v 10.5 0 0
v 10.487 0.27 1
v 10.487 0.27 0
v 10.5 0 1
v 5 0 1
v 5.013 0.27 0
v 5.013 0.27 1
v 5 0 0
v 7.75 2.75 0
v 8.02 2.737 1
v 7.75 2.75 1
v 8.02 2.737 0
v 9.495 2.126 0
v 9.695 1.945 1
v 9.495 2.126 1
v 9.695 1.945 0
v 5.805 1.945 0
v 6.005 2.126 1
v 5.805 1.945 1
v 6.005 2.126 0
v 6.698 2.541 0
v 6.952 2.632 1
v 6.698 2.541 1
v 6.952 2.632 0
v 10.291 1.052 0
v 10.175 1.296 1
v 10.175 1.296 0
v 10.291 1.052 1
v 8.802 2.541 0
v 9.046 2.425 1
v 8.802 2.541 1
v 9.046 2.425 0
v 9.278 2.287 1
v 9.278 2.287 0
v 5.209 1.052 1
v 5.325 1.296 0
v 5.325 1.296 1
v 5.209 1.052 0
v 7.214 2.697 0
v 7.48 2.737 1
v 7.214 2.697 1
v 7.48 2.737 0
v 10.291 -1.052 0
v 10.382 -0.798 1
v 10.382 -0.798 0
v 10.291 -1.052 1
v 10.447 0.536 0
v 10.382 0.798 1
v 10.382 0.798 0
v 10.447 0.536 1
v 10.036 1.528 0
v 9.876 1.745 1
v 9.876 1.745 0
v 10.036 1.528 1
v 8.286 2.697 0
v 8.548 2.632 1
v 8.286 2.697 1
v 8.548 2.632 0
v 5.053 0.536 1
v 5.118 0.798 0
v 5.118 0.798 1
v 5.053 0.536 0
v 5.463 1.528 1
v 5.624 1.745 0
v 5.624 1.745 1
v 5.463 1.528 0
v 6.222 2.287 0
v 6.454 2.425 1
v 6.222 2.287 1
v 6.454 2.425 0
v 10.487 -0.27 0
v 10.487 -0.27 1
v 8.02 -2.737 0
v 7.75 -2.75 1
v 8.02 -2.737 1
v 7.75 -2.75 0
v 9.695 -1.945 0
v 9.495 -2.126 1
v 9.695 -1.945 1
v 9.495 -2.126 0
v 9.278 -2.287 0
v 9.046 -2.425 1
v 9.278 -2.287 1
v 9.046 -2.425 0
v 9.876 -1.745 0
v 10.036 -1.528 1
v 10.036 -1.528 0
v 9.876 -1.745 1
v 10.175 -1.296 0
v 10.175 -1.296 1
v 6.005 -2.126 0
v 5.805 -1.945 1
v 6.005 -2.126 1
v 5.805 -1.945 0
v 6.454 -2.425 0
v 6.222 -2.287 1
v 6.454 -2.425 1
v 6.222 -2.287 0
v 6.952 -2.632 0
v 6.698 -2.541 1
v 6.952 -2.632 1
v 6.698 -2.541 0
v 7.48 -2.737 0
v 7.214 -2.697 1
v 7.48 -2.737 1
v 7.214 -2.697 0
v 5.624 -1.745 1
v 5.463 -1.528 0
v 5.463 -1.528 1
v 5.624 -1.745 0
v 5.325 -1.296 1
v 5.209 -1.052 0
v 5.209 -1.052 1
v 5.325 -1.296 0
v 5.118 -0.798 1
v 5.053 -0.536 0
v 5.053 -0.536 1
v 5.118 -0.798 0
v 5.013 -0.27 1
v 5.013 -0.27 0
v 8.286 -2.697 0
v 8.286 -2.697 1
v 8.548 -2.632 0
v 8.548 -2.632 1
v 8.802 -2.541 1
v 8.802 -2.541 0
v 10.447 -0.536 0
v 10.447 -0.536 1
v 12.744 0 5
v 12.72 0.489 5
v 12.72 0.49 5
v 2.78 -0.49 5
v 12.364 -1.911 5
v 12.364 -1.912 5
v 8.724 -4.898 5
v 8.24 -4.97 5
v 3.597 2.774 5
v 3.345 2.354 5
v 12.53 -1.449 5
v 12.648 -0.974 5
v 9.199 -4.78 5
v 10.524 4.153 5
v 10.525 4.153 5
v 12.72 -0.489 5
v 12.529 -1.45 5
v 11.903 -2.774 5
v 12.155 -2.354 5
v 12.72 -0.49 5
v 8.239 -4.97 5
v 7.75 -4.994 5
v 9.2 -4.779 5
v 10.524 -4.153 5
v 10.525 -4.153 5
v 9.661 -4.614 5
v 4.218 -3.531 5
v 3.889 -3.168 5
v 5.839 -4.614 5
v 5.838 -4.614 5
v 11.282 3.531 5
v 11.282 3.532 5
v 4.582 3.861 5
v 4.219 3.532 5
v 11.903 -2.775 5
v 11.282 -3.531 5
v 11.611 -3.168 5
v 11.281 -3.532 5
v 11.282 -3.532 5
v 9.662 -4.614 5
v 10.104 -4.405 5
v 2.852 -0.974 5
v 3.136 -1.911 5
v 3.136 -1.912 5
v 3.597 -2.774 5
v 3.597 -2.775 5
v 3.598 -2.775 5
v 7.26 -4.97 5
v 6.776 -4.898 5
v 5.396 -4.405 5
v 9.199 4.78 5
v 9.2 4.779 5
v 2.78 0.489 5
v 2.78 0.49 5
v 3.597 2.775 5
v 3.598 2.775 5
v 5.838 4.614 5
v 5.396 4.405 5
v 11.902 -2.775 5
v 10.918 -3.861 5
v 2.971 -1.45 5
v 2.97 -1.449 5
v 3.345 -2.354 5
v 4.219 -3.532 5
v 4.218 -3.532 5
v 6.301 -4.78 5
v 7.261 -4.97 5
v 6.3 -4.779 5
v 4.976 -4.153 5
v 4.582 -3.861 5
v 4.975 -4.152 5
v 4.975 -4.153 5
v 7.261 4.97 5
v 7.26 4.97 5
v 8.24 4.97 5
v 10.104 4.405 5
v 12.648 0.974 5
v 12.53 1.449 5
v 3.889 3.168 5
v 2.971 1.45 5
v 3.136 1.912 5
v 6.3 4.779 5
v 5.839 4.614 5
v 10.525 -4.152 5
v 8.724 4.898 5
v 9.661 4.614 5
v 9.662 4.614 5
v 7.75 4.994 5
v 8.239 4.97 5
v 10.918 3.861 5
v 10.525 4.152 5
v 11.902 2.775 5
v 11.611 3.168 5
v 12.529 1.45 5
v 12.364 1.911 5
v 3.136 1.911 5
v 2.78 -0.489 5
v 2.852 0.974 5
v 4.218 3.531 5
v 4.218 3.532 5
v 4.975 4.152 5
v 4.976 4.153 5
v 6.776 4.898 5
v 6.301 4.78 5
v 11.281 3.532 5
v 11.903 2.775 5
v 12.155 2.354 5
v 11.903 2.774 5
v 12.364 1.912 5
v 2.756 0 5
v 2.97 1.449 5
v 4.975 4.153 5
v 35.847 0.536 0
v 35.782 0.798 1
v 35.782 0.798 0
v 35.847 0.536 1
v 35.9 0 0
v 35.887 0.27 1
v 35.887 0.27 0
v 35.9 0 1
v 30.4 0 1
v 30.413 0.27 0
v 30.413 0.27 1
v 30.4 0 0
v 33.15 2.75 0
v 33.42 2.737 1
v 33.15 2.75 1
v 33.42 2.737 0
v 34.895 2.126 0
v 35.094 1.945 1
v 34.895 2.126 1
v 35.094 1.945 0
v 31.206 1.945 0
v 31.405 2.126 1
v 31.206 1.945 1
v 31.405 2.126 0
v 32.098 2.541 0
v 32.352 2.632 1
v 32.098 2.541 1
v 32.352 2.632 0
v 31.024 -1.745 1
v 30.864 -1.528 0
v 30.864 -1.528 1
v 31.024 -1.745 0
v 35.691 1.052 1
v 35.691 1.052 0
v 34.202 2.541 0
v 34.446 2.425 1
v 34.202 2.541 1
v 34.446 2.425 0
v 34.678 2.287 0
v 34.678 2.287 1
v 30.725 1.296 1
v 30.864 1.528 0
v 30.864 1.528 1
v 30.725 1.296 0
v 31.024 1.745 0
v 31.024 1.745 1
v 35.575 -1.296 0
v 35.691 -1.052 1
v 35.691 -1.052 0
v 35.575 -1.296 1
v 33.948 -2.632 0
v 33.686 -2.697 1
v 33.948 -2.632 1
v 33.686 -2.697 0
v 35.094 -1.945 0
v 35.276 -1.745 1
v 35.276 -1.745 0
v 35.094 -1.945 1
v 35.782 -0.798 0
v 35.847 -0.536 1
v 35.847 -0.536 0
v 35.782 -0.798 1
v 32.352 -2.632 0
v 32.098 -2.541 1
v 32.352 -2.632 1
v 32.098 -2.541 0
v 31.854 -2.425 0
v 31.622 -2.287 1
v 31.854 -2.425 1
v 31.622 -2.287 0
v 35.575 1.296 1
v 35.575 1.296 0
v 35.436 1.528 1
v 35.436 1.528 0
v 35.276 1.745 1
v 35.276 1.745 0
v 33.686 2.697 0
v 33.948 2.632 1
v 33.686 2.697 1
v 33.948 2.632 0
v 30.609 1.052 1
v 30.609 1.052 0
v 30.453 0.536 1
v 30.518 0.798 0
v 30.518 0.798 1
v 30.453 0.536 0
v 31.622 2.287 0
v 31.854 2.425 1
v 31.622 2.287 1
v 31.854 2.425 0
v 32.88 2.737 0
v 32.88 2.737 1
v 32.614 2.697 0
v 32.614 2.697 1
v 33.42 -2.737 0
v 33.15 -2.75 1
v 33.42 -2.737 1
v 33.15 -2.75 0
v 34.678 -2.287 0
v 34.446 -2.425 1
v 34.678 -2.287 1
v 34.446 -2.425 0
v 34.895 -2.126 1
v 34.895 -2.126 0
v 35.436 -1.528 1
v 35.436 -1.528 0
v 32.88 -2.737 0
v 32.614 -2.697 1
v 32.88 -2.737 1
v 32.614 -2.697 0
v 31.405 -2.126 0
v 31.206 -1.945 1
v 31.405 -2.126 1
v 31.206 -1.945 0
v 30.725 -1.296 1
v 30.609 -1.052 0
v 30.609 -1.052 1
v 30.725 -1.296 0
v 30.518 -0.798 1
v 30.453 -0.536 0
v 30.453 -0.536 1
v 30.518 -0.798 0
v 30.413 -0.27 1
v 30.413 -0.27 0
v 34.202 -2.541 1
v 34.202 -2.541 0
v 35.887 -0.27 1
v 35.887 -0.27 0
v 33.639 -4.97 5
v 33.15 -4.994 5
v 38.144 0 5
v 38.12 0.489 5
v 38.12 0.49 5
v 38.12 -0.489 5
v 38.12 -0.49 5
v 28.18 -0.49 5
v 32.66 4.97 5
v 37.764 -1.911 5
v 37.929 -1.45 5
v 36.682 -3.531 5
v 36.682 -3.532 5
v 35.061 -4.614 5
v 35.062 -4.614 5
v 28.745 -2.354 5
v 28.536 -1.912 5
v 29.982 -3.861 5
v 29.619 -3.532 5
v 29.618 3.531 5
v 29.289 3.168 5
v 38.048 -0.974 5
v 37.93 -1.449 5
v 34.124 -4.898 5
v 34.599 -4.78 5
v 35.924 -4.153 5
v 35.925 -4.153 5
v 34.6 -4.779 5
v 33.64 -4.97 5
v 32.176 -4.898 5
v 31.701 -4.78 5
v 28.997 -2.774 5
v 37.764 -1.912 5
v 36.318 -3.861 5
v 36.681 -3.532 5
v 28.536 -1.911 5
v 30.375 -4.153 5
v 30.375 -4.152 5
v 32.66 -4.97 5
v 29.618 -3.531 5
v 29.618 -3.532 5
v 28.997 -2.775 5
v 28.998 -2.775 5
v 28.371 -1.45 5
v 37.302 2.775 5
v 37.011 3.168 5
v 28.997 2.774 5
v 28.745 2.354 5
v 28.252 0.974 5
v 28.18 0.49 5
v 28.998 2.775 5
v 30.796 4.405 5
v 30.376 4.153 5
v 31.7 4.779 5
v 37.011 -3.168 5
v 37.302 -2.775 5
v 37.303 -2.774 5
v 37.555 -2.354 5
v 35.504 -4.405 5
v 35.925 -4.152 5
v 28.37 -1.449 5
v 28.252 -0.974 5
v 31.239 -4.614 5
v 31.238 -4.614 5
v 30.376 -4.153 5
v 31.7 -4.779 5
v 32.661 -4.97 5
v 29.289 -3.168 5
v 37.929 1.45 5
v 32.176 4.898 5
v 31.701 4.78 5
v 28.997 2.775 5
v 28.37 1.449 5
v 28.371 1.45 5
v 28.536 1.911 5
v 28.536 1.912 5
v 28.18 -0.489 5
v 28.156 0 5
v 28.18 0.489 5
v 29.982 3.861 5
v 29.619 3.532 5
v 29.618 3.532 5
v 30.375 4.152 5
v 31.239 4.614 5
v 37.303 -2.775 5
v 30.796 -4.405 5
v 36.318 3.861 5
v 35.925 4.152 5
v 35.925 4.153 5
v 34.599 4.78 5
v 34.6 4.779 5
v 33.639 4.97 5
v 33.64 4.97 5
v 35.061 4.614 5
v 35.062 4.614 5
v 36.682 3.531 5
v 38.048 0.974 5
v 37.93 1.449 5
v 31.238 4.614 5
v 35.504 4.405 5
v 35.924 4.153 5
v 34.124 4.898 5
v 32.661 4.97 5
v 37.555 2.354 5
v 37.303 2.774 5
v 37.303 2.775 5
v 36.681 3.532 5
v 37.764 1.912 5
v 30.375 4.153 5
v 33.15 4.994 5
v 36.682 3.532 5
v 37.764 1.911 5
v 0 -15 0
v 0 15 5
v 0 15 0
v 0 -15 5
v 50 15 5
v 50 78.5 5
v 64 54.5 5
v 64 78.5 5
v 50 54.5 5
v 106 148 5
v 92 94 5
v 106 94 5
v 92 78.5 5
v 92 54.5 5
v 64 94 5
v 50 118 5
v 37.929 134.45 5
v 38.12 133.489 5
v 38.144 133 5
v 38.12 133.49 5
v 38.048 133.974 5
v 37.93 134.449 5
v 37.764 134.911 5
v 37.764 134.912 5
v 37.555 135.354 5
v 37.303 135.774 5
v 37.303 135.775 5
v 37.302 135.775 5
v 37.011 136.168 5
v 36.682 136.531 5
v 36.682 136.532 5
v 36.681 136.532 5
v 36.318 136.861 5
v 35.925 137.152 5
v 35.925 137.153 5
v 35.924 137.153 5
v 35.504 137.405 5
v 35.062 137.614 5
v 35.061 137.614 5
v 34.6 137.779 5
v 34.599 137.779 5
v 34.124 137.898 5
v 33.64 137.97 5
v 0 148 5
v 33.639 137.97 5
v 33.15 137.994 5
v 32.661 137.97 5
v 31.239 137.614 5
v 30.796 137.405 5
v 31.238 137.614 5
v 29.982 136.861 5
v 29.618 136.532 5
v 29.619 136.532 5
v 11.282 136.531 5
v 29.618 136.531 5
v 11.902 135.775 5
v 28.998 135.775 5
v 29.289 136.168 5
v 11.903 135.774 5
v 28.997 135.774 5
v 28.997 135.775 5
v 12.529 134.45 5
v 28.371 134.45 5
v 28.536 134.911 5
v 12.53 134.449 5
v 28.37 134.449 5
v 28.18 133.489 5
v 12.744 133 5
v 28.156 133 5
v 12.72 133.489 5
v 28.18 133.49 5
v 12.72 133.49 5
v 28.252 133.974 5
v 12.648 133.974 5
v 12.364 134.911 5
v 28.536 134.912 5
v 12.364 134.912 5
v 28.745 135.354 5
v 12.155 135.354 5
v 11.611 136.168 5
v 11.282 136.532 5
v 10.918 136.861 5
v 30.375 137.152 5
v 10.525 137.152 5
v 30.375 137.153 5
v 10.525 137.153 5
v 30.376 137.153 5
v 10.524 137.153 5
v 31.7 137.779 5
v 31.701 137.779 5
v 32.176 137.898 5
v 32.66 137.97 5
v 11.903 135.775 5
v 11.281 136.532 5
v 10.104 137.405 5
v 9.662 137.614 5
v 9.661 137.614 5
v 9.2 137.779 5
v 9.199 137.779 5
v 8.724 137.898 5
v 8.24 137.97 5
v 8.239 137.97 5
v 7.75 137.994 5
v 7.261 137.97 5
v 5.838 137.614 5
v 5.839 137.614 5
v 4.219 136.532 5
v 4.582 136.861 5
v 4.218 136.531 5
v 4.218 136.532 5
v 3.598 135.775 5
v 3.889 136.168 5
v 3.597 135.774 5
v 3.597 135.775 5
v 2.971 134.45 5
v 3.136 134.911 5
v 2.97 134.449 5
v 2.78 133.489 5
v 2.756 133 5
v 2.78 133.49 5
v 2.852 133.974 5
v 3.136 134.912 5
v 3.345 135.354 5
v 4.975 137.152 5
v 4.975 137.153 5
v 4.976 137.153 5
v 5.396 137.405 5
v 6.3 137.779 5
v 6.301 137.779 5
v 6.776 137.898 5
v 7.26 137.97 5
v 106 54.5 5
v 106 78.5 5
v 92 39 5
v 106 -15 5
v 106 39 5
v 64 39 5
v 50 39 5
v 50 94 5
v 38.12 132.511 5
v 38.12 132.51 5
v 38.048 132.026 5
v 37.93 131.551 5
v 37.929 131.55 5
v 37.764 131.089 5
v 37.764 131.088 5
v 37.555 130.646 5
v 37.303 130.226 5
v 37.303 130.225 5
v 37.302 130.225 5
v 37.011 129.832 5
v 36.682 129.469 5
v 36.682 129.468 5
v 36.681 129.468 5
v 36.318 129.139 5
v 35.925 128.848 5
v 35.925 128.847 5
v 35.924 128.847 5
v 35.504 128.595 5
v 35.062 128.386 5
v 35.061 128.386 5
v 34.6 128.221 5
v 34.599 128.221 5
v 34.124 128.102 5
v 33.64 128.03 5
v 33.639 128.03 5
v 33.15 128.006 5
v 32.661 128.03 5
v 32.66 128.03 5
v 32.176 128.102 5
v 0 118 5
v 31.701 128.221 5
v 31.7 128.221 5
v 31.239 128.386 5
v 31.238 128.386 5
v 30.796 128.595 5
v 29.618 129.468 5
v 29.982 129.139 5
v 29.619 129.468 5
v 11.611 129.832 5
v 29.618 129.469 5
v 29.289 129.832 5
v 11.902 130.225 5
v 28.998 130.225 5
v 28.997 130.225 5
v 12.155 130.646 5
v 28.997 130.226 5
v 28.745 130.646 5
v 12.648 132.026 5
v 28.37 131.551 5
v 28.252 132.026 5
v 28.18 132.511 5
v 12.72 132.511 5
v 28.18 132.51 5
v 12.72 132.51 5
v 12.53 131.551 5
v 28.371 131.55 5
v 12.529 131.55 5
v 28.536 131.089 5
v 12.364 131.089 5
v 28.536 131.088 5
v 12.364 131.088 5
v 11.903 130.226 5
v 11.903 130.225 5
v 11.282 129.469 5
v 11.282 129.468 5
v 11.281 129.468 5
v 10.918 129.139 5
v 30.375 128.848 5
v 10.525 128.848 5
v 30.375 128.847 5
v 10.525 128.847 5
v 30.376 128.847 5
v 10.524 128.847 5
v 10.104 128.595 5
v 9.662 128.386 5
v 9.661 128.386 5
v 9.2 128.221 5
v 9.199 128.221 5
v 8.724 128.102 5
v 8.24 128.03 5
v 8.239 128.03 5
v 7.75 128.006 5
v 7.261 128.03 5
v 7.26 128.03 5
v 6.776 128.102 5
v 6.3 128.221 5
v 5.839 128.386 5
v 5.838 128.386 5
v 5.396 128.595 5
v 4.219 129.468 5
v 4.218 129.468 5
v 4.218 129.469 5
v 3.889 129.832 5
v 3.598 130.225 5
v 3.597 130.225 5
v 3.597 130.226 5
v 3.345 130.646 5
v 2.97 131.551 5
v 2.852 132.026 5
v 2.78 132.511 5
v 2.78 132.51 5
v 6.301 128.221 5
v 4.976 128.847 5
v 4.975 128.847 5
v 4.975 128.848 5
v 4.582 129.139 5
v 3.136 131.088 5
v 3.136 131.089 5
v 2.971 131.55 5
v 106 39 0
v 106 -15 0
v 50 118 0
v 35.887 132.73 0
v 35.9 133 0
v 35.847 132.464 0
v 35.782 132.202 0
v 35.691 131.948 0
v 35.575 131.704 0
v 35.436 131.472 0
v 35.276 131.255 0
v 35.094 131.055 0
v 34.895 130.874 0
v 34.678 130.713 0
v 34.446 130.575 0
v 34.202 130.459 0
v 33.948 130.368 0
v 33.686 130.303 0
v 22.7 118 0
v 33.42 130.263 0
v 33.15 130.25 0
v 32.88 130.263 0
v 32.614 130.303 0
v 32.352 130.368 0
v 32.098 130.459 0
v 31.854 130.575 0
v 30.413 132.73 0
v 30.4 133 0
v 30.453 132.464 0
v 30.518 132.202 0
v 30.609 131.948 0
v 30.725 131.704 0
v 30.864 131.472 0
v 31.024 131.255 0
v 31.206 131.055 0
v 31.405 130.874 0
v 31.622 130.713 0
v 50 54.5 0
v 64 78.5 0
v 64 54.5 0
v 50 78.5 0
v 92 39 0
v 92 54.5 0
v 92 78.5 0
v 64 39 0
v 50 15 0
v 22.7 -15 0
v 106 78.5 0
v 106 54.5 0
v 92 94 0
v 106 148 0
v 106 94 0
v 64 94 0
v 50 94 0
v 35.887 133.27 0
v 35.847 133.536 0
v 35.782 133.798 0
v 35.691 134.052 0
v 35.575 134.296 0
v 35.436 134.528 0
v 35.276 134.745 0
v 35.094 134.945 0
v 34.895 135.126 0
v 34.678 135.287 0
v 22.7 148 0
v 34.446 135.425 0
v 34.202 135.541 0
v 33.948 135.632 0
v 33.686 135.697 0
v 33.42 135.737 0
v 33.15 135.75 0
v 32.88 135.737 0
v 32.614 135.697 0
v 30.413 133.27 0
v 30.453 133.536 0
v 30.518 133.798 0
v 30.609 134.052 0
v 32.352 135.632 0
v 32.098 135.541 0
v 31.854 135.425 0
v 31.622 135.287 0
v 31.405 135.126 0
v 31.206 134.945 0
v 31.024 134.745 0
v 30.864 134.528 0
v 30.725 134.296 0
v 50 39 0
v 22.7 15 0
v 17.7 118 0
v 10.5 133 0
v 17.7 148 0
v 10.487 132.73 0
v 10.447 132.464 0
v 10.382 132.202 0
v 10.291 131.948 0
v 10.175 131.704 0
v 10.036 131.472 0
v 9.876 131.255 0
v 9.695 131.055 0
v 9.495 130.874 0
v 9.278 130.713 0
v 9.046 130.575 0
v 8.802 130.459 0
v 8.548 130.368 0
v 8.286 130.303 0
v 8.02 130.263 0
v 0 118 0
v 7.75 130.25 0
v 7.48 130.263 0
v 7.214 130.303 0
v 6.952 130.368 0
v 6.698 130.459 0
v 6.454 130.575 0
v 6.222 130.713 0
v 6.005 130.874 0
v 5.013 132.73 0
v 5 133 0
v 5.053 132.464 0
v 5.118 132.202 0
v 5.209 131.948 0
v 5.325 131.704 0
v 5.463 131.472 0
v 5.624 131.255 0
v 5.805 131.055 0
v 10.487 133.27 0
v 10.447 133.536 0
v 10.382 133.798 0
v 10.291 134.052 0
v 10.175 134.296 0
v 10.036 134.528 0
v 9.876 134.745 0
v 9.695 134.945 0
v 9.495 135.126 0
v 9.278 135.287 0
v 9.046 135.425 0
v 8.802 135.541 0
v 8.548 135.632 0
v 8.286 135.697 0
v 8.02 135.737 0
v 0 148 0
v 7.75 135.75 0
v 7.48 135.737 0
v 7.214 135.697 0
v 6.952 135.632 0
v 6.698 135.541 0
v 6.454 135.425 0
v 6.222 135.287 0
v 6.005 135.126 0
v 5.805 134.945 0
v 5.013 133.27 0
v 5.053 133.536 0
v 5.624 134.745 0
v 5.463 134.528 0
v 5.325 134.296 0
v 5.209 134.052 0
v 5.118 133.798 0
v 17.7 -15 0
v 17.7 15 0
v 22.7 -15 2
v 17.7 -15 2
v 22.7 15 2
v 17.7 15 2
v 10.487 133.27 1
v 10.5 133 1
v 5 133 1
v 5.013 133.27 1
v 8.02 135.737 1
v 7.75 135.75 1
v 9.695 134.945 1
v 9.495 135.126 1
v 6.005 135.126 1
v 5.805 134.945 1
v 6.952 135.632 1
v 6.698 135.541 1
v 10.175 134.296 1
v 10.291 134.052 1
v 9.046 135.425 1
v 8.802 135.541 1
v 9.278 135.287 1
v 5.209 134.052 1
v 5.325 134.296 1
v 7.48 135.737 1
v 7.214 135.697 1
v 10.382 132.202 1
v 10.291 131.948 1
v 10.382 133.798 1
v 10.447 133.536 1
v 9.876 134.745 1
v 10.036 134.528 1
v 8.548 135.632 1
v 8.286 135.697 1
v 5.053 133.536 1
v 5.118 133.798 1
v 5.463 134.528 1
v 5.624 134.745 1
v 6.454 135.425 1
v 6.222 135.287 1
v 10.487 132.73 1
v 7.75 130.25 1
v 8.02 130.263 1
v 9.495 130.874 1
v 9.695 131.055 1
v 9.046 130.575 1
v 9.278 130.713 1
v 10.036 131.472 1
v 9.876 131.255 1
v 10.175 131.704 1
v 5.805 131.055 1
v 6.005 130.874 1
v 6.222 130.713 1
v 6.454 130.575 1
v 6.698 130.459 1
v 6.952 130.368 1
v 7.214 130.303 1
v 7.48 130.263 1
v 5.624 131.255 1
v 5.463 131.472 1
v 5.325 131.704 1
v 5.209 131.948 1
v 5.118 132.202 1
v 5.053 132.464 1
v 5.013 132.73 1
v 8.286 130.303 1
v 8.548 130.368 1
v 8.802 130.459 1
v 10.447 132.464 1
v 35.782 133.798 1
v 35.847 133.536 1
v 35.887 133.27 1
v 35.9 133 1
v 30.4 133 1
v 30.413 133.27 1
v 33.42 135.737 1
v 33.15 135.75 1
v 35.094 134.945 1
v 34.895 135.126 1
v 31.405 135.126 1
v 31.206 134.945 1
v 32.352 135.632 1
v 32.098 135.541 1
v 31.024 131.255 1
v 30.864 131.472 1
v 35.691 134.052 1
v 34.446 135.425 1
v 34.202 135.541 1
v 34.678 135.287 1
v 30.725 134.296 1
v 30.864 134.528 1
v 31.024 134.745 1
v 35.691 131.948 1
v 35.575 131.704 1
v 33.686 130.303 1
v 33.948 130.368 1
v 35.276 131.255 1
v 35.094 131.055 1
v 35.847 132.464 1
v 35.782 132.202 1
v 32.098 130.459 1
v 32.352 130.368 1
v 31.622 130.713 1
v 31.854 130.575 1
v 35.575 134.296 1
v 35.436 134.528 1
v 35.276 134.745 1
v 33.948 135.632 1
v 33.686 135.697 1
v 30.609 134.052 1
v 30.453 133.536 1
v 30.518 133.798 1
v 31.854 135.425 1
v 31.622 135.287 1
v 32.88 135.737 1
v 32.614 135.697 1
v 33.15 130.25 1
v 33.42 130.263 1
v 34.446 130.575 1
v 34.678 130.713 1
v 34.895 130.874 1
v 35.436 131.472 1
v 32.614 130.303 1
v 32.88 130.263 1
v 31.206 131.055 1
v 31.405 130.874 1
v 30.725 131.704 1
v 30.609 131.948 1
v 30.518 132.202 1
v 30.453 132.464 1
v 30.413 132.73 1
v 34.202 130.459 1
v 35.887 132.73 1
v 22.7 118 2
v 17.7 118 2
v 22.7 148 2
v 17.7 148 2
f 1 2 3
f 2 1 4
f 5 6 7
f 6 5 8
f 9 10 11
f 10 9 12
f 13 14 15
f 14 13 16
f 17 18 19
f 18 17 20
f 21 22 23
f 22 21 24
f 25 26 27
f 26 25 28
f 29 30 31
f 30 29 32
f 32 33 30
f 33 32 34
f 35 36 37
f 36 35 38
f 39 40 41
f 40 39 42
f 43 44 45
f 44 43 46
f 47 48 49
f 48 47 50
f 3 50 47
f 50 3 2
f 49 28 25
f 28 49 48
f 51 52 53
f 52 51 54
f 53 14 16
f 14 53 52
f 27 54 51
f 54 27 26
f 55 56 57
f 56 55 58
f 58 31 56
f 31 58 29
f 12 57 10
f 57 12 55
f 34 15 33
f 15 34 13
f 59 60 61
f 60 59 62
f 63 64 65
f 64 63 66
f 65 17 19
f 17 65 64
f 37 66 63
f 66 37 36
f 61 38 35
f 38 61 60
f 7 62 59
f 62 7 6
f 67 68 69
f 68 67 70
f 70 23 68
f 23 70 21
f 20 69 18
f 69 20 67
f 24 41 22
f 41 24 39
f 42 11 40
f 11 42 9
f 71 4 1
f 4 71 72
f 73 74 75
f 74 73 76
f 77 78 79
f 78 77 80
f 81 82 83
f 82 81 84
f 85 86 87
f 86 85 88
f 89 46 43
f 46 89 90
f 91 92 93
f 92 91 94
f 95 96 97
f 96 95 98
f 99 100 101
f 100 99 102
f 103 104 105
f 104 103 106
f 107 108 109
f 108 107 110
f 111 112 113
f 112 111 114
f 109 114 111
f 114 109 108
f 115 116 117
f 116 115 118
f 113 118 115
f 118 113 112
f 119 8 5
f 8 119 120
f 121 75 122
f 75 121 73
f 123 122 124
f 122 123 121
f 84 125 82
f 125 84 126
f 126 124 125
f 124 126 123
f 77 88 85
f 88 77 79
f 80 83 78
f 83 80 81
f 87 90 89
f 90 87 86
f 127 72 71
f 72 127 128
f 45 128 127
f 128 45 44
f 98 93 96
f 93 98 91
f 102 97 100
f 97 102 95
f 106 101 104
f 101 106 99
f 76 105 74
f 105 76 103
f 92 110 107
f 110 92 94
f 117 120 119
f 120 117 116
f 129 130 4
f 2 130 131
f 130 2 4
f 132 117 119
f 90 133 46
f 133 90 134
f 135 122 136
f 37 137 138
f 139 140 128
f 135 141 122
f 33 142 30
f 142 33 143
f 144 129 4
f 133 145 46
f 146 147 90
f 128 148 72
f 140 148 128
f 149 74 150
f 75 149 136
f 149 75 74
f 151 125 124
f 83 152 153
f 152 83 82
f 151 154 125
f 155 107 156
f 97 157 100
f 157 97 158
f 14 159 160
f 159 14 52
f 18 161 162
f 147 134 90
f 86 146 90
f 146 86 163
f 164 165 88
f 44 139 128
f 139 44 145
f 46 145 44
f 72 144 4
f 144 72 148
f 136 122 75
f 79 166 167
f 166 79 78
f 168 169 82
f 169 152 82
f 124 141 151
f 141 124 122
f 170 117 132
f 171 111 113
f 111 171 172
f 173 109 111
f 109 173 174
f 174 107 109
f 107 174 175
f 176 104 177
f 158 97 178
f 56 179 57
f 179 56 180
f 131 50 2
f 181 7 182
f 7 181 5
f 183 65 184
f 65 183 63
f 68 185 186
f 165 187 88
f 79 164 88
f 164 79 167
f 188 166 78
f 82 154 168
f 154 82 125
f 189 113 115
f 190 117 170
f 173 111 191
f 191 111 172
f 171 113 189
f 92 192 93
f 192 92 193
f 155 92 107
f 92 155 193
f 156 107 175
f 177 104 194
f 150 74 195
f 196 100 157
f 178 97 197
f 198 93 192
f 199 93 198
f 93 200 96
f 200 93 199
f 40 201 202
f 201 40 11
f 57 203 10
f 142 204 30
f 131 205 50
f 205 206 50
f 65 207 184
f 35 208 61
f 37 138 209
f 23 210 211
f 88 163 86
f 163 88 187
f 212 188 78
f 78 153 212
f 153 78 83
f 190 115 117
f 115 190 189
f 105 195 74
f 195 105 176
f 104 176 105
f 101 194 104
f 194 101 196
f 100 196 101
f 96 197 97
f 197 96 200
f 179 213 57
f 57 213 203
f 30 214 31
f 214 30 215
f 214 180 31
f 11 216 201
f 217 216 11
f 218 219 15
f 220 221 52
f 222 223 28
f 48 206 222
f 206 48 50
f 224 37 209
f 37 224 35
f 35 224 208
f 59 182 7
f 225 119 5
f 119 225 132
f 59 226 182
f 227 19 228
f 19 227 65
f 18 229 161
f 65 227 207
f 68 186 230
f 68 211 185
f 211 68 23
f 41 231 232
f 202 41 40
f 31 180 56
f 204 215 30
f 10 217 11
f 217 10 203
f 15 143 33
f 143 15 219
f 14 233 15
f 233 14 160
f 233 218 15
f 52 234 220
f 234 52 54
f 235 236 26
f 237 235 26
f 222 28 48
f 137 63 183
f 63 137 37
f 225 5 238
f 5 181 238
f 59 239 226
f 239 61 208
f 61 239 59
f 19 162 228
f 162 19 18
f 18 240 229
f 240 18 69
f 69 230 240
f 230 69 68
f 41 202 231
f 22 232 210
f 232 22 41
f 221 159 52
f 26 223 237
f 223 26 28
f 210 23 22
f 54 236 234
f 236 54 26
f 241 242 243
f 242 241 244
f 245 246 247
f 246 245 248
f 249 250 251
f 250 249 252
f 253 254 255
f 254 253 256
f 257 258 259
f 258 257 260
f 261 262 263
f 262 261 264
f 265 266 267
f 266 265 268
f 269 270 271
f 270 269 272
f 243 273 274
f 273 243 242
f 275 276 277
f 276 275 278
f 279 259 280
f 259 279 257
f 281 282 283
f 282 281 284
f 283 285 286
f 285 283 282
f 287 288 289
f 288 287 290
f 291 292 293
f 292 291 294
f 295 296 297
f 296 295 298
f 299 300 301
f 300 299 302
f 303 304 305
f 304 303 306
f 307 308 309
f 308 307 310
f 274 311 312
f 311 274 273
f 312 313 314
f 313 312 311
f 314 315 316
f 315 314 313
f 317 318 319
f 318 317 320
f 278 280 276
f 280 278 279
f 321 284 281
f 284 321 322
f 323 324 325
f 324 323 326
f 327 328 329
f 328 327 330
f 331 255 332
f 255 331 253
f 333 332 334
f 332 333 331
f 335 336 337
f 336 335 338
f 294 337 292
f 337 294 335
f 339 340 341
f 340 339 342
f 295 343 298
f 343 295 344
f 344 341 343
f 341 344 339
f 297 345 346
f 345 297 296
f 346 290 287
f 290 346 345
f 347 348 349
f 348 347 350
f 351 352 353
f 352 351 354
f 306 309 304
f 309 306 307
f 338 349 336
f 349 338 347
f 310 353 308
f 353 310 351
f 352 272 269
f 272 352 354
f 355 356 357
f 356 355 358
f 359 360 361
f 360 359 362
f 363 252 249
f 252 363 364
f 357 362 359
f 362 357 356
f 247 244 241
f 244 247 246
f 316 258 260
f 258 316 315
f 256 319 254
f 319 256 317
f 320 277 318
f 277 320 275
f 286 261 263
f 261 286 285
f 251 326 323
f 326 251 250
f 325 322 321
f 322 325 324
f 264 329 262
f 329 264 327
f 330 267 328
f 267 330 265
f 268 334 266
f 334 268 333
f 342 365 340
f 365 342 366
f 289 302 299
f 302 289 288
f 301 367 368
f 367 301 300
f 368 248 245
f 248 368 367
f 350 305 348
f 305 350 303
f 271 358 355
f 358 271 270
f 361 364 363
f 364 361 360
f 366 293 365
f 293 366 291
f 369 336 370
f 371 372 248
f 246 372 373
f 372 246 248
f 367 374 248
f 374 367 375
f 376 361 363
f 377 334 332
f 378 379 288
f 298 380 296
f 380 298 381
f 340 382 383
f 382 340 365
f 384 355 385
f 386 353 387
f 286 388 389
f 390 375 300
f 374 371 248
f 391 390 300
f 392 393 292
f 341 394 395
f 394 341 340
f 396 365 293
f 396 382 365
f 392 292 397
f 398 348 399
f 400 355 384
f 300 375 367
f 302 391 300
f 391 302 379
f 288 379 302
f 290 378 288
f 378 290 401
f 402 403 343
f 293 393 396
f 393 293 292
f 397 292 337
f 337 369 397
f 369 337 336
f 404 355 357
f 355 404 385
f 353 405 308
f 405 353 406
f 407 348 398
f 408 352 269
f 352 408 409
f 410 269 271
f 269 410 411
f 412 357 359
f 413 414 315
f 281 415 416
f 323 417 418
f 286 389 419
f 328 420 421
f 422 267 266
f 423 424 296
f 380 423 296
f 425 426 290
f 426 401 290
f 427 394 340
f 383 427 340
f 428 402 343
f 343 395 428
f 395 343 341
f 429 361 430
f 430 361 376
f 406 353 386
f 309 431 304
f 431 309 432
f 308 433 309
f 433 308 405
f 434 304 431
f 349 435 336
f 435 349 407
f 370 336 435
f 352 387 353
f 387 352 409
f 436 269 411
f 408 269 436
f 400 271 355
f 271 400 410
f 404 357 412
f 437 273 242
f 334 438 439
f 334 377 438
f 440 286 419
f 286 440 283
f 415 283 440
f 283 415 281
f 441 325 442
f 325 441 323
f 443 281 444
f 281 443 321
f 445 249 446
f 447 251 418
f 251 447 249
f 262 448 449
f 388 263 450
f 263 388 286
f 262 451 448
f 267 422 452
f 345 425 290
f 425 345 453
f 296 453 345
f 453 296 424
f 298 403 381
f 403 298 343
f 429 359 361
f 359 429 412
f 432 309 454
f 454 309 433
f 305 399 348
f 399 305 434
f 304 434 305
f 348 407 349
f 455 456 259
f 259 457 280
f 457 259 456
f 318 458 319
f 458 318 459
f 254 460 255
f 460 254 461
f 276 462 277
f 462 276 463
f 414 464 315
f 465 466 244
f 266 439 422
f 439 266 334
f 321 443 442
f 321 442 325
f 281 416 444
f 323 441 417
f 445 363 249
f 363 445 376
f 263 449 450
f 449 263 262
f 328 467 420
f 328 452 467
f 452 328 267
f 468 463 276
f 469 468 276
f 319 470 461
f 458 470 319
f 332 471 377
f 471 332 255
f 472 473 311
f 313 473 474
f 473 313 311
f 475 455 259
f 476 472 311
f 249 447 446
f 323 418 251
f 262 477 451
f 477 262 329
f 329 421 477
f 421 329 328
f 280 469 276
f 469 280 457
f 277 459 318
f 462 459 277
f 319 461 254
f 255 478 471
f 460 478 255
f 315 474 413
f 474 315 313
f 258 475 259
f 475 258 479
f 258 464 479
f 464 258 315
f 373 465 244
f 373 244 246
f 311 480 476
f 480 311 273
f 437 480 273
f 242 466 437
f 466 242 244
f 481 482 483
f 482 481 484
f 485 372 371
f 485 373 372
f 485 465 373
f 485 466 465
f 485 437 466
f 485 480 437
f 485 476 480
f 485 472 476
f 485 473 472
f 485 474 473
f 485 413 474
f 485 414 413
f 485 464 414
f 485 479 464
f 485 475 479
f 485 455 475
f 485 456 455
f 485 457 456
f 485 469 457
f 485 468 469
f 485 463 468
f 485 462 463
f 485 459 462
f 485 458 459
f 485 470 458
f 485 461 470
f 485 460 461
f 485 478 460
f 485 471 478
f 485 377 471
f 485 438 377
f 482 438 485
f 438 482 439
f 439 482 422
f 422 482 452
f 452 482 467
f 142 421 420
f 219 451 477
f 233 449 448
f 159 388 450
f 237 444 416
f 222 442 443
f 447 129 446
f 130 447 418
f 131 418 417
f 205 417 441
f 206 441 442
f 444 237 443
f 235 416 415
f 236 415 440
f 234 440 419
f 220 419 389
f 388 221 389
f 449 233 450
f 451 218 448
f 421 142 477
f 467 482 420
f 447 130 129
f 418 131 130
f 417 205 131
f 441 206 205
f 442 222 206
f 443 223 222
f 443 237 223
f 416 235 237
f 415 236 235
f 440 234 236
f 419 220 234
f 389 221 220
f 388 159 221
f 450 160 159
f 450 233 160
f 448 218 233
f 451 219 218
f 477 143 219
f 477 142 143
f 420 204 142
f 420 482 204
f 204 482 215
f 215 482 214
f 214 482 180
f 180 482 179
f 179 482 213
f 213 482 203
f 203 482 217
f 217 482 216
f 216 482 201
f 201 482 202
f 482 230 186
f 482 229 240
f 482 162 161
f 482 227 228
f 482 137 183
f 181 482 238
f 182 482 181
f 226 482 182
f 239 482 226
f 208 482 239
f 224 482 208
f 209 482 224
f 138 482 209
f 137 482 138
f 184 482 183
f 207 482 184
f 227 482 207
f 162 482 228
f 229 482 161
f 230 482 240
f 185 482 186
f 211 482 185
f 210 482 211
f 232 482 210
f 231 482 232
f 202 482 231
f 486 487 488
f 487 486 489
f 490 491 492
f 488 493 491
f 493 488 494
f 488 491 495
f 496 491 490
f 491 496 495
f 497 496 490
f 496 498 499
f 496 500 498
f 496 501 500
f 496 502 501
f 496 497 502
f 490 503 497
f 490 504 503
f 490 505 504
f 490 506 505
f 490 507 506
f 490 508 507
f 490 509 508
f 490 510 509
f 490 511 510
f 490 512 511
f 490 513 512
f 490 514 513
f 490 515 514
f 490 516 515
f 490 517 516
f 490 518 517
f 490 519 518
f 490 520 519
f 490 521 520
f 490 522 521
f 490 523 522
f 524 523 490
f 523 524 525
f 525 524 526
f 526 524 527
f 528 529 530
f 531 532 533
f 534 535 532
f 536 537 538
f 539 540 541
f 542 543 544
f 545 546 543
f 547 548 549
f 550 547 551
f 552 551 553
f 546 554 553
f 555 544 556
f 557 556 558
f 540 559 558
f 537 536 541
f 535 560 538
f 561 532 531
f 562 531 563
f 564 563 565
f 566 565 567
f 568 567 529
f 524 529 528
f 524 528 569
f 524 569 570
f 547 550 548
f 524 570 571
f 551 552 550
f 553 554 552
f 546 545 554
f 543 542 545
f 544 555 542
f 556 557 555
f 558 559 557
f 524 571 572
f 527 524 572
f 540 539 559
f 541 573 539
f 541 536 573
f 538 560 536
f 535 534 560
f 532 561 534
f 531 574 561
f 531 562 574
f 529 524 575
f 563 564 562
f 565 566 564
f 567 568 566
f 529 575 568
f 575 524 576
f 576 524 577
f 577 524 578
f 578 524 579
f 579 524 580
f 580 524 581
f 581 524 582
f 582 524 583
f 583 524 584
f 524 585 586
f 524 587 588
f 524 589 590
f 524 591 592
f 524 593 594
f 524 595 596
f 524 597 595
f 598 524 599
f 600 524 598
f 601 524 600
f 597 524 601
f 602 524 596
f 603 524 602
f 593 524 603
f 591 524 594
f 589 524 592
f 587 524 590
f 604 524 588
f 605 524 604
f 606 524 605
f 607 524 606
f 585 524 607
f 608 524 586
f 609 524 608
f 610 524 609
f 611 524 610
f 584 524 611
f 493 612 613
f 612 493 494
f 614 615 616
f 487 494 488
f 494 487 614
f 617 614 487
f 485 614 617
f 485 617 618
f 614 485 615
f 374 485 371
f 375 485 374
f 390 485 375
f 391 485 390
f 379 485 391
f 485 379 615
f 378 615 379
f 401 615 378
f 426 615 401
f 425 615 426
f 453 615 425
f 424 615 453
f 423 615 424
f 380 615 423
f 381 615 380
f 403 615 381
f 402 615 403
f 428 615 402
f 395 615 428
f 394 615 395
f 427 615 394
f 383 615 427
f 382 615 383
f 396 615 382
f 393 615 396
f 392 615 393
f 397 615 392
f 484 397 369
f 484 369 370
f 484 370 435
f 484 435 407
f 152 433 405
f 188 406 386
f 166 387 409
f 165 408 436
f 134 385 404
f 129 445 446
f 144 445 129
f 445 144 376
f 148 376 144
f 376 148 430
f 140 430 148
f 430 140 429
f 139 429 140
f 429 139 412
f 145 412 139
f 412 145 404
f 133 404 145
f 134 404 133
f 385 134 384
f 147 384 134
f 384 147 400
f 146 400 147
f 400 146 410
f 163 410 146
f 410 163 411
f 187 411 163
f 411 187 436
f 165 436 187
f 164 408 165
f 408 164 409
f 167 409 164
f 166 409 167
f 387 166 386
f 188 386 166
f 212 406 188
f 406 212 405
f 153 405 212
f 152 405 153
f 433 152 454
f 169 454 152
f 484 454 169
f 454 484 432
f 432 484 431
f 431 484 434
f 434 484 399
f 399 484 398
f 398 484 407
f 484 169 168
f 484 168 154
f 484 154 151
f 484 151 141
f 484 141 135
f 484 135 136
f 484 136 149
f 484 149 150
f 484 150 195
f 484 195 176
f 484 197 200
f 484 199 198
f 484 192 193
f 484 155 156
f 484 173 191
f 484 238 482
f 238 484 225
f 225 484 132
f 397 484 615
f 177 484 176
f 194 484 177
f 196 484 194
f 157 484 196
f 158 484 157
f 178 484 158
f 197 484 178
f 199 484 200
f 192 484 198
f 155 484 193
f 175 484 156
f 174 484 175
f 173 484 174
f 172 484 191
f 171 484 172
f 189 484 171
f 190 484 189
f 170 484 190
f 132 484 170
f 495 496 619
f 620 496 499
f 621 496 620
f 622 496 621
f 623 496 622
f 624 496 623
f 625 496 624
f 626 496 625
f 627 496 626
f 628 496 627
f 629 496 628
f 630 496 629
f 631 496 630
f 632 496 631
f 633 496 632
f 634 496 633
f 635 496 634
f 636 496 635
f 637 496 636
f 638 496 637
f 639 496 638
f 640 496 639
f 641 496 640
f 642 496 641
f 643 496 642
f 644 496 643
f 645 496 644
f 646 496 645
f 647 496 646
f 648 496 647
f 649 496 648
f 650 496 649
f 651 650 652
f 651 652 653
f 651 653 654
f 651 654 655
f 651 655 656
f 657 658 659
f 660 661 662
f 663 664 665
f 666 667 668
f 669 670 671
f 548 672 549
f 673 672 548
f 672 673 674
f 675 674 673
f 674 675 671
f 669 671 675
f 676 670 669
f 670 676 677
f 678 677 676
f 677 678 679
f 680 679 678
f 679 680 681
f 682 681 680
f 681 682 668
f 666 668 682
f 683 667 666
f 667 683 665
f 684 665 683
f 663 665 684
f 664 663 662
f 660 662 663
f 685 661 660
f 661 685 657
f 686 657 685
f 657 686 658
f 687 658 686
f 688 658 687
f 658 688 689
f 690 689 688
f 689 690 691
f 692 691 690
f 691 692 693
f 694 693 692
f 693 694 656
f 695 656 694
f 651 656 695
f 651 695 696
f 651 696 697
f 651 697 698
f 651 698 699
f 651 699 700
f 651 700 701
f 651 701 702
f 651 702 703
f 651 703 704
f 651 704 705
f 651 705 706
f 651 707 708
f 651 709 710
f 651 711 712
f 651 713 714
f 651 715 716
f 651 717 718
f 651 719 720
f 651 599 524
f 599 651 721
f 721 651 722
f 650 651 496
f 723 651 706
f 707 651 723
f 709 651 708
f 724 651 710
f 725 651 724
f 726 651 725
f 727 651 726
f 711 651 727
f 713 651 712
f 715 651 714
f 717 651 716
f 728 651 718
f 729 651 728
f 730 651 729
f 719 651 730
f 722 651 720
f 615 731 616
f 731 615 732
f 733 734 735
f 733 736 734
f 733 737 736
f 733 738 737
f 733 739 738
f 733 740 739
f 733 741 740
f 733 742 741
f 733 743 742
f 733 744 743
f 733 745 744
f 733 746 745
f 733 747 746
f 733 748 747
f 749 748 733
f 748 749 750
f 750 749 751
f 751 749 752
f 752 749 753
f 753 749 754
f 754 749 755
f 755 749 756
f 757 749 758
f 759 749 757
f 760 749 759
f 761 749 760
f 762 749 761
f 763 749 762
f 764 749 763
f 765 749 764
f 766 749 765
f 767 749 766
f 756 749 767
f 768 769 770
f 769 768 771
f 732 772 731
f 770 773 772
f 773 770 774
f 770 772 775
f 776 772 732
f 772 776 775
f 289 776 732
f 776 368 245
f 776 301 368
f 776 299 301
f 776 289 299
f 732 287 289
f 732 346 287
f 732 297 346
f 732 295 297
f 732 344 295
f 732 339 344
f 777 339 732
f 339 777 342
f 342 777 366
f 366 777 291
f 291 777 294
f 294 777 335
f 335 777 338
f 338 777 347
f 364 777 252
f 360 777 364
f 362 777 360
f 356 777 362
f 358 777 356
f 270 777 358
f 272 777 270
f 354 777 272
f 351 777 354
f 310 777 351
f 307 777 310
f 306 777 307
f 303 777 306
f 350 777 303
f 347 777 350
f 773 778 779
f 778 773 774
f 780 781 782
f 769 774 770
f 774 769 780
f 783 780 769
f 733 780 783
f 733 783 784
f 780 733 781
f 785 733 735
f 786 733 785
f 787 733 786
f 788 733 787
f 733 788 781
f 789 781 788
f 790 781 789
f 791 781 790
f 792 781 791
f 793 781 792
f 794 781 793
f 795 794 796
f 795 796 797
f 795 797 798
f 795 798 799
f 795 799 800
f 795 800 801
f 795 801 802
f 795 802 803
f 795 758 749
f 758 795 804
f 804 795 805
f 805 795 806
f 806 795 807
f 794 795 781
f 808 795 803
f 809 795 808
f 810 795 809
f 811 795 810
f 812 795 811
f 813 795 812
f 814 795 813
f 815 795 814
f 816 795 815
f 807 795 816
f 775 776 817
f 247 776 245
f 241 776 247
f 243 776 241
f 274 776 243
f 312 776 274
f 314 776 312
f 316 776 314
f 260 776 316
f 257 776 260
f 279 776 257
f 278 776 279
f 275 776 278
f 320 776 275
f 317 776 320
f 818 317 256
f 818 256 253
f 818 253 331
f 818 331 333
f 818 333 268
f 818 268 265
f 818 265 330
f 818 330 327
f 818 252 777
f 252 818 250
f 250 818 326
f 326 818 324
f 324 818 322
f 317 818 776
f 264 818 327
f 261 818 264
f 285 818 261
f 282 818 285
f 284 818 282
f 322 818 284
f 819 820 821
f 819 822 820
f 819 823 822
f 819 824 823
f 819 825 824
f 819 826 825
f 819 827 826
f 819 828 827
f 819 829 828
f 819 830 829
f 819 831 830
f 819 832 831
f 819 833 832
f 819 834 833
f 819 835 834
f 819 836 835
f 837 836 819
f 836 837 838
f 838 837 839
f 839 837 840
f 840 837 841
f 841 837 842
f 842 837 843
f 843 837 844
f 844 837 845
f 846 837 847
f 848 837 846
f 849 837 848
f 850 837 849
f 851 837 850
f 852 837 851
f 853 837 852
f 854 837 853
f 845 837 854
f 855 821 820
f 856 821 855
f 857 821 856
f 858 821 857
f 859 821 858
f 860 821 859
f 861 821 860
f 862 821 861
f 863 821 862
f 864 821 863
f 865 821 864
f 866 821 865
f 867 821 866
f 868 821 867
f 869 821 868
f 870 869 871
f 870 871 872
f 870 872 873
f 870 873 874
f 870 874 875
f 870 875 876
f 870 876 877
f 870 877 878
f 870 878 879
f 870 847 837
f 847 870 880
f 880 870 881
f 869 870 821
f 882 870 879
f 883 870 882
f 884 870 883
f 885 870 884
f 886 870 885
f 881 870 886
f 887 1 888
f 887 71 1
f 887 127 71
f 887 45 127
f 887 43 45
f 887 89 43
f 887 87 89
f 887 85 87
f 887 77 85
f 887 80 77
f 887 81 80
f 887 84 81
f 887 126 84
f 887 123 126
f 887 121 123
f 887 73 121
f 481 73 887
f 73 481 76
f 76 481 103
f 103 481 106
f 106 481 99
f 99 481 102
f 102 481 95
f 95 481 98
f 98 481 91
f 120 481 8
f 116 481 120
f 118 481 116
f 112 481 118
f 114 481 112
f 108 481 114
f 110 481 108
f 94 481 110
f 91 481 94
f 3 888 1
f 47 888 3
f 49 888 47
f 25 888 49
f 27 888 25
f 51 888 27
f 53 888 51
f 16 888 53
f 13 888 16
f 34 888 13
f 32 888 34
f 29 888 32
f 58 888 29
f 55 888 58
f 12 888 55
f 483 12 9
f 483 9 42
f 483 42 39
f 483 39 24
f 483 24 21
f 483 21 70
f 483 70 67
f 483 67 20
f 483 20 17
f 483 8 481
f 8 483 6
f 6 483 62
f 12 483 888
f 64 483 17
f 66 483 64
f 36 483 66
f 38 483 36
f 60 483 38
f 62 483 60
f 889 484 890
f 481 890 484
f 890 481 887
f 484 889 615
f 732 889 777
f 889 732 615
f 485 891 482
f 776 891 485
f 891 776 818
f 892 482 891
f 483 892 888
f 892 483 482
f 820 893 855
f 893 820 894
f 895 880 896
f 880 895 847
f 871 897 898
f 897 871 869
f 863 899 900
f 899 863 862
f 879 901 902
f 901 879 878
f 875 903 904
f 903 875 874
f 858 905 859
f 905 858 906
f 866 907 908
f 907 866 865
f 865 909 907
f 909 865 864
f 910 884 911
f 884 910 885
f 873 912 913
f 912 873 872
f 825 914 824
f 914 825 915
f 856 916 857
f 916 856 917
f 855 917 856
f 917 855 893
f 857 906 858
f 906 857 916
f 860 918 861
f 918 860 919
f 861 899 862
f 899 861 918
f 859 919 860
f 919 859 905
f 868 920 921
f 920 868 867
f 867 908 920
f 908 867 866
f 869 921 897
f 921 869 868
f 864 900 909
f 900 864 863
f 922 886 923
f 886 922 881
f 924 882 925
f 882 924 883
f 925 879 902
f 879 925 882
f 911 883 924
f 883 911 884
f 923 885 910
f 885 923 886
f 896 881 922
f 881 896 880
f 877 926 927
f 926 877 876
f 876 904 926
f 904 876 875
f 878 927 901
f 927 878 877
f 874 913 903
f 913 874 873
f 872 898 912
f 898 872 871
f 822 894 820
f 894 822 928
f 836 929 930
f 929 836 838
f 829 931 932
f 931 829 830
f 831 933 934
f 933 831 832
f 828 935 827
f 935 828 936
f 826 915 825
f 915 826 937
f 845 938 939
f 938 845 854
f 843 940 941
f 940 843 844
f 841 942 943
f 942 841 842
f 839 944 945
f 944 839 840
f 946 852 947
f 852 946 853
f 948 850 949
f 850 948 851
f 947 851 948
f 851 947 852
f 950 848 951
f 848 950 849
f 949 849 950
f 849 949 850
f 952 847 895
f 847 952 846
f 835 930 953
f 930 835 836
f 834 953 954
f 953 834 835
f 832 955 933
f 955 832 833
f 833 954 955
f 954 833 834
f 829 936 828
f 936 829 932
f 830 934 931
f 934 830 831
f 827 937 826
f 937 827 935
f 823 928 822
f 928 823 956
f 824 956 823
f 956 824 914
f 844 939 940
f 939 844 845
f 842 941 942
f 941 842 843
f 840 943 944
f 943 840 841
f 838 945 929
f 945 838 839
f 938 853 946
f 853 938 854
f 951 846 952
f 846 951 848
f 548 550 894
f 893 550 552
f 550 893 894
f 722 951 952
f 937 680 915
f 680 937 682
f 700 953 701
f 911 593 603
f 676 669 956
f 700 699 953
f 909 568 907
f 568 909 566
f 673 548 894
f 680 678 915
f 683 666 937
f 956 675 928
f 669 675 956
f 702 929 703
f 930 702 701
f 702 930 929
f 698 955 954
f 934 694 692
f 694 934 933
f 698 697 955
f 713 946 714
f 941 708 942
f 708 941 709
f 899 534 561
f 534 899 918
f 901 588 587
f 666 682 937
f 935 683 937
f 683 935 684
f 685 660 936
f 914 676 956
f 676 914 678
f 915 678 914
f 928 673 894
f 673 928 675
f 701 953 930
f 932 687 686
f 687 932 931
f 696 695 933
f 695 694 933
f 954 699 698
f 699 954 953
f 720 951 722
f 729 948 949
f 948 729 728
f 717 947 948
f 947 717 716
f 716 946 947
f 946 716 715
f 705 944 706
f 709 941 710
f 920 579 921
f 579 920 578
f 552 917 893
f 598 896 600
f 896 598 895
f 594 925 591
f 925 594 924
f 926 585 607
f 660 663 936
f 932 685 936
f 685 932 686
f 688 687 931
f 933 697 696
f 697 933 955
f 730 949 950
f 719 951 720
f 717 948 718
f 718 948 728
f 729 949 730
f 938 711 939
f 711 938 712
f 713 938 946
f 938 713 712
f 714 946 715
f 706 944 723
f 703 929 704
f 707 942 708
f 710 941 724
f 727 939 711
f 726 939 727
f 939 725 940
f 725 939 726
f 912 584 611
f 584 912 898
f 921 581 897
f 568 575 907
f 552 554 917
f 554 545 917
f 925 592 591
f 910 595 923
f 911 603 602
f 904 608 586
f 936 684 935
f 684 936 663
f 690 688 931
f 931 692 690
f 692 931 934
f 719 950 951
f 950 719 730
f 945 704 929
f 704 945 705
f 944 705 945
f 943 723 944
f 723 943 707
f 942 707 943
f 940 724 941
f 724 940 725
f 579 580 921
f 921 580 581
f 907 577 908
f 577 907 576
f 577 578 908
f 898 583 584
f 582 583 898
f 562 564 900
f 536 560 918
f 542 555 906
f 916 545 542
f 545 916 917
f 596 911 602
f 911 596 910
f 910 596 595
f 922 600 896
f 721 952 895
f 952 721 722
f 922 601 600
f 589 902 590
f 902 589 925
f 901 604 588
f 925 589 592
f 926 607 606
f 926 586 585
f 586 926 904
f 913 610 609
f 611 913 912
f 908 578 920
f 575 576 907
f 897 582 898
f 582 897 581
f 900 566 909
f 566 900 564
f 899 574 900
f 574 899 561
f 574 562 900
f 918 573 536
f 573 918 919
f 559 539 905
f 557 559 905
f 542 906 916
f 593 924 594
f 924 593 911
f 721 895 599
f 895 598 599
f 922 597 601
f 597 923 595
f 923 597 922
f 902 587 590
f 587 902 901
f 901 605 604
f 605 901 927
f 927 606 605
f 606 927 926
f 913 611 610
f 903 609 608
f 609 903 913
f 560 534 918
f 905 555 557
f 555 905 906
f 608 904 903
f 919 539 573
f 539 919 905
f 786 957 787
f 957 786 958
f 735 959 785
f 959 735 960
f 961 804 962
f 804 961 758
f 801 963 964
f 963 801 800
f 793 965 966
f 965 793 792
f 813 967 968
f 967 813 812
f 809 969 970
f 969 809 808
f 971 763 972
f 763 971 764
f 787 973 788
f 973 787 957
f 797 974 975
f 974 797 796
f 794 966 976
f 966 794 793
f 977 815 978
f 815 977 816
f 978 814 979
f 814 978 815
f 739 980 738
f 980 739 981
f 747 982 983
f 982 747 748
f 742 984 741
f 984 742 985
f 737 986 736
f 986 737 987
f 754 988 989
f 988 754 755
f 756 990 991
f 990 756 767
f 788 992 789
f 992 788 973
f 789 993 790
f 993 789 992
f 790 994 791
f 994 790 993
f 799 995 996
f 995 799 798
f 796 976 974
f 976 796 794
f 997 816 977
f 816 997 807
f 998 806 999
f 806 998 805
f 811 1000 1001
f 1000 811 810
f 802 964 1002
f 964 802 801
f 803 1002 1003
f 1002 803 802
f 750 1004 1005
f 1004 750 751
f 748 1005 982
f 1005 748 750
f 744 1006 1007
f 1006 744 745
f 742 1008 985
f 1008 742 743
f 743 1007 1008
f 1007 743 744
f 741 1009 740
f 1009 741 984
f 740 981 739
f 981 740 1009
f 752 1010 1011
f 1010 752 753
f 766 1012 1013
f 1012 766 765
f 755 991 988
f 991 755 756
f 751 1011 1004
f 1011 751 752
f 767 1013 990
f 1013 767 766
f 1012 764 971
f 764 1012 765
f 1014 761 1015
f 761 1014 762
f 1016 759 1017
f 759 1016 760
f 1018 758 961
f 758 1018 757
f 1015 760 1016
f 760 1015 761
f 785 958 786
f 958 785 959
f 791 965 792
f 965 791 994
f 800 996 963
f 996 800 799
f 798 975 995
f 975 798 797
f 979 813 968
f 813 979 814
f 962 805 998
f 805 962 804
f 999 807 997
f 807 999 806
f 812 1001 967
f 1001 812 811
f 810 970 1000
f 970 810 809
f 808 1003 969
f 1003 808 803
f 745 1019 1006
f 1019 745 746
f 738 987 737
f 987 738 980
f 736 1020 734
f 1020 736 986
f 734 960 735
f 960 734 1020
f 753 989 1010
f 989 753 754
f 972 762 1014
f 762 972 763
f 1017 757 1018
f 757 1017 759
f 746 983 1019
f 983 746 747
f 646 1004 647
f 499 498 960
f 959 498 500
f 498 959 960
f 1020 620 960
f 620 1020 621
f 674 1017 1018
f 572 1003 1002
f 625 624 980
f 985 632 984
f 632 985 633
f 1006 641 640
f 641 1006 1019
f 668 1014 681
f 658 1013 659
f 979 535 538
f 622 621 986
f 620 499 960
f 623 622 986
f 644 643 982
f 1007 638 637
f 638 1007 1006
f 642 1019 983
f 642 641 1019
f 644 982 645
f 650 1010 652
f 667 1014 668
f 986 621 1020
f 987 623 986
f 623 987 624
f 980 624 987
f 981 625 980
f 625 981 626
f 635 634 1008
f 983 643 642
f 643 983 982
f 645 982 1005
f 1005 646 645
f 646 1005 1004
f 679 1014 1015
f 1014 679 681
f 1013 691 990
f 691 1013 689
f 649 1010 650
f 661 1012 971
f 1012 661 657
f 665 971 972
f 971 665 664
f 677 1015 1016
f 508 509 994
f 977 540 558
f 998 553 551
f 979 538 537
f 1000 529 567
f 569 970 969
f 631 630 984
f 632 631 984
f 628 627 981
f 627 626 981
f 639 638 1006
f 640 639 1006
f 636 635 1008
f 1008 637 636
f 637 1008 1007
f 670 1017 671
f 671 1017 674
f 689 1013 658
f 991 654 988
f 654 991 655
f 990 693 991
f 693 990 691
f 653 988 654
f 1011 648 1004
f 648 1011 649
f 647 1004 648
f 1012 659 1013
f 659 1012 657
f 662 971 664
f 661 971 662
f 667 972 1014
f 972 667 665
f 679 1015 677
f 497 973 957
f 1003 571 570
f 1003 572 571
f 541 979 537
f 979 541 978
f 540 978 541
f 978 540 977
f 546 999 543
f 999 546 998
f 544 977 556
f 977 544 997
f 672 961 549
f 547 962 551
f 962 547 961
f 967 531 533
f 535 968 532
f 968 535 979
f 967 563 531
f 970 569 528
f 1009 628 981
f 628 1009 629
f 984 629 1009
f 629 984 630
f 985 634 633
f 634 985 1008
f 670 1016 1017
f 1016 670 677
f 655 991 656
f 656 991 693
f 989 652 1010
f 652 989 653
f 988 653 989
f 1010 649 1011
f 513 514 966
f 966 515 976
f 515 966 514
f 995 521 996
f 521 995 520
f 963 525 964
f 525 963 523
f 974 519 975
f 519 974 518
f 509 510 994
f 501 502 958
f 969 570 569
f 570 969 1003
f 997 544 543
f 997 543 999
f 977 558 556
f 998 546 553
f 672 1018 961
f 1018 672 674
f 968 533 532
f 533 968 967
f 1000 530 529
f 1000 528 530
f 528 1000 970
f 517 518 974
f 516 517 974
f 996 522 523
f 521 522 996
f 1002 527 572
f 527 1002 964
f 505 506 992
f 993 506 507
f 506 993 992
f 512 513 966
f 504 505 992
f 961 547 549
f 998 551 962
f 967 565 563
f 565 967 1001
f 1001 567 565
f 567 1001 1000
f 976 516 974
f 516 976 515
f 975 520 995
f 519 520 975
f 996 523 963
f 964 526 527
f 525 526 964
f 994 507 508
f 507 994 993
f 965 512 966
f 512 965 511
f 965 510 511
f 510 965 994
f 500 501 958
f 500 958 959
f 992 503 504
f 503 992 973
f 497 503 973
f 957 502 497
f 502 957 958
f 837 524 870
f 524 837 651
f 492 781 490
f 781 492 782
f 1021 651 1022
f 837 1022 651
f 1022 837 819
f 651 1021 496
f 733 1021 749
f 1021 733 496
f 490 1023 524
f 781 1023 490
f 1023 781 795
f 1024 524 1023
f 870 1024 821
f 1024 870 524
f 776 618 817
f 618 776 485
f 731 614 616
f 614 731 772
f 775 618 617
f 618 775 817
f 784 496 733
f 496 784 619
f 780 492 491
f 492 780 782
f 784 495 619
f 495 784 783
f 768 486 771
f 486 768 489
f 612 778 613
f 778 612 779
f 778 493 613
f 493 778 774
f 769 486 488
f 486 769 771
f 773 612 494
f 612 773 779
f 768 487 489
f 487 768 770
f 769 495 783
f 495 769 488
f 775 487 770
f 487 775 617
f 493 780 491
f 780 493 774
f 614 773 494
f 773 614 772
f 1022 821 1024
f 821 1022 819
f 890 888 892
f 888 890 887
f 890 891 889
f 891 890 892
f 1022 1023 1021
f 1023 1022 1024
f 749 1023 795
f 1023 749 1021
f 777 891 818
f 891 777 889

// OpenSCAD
$fn = 64;

in = 25.4;
bracket_thickness = 5;
screw_hole_diameter = 5.5;
screw_head_diameter = 10;
screw_head_height = 4;
screw_hole_spacing = 133;
first_hole_offset = 5;

supply_width = 56;
supply_length = 112;
velcro_width = 15.5;

mounting_plate_width = 30;
mounting_plate_length = 50;

cable_slot_width = 5;
cable_slot_height = 2;

fudge = 0.01;

// Derived values, do not edit
pf = fudge;
nf = -fudge;
dpf = 2 * pf;
base_offset = first_hole_offset + screw_hole_diameter/2;

module mounting_post() {
    difference() {
        cube([mounting_plate_length + supply_width, mounting_plate_width, bracket_thickness]);
        translate([0, mounting_plate_width/2, nf]) {           
            translate([base_offset, 0, 0]) {
                cylinder(d = screw_hole_diameter, h = bracket_thickness + dpf);
                translate([0, 0, bracket_thickness - screw_head_height + pf])
                    cylinder(d1 = screw_hole_diameter, d2 = screw_head_diameter, h = screw_head_height + pf);
            }
            translate([base_offset + in, 0, 0]) {
                cylinder(d = screw_hole_diameter, h = bracket_thickness + dpf);
                translate([0, 0, bracket_thickness - screw_head_height + pf])
                    cylinder(d1 = screw_hole_diameter, d2 = screw_head_diameter, h = screw_head_height + pf);
            }
        }
    }
}

module final_part() {
    difference() {
        union() {
            // mounting posts
            mounting_post();
            translate([0, screw_hole_spacing, 0])
                mounting_post();
            
            // wide support plates w/ spacing for velcro
            plate_width = (screw_hole_spacing - mounting_plate_width - 2 * velcro_width) / 3;
            translate([mounting_plate_length, mounting_plate_width, 0]) 
                color("red") 
                    cube([supply_width, plate_width, bracket_thickness]);
            translate([mounting_plate_length, screw_hole_spacing - plate_width, 0]) 
                color("red") 
                    cube([supply_width, plate_width, bracket_thickness]);
            translate([mounting_plate_length, mounting_plate_width + plate_width + velcro_width, 0]) 
                color("red") 
                    cube([supply_width, plate_width, bracket_thickness]);
            
            // narrow support for velcro and sticky tape
            translate([mounting_plate_length + supply_width/4, 0, 0])
                color("green") 
                    cube([supply_width/2, screw_hole_spacing + mounting_plate_width, bracket_thickness]);
        }
        translate([first_hole_offset + in/2 , nf, nf]) cube([cable_slot_width, screw_hole_spacing + mounting_plate_width + dpf, cable_slot_height + pf]);
    }
}

translate([0, -mounting_plate_width/2, 0])
final_part();
